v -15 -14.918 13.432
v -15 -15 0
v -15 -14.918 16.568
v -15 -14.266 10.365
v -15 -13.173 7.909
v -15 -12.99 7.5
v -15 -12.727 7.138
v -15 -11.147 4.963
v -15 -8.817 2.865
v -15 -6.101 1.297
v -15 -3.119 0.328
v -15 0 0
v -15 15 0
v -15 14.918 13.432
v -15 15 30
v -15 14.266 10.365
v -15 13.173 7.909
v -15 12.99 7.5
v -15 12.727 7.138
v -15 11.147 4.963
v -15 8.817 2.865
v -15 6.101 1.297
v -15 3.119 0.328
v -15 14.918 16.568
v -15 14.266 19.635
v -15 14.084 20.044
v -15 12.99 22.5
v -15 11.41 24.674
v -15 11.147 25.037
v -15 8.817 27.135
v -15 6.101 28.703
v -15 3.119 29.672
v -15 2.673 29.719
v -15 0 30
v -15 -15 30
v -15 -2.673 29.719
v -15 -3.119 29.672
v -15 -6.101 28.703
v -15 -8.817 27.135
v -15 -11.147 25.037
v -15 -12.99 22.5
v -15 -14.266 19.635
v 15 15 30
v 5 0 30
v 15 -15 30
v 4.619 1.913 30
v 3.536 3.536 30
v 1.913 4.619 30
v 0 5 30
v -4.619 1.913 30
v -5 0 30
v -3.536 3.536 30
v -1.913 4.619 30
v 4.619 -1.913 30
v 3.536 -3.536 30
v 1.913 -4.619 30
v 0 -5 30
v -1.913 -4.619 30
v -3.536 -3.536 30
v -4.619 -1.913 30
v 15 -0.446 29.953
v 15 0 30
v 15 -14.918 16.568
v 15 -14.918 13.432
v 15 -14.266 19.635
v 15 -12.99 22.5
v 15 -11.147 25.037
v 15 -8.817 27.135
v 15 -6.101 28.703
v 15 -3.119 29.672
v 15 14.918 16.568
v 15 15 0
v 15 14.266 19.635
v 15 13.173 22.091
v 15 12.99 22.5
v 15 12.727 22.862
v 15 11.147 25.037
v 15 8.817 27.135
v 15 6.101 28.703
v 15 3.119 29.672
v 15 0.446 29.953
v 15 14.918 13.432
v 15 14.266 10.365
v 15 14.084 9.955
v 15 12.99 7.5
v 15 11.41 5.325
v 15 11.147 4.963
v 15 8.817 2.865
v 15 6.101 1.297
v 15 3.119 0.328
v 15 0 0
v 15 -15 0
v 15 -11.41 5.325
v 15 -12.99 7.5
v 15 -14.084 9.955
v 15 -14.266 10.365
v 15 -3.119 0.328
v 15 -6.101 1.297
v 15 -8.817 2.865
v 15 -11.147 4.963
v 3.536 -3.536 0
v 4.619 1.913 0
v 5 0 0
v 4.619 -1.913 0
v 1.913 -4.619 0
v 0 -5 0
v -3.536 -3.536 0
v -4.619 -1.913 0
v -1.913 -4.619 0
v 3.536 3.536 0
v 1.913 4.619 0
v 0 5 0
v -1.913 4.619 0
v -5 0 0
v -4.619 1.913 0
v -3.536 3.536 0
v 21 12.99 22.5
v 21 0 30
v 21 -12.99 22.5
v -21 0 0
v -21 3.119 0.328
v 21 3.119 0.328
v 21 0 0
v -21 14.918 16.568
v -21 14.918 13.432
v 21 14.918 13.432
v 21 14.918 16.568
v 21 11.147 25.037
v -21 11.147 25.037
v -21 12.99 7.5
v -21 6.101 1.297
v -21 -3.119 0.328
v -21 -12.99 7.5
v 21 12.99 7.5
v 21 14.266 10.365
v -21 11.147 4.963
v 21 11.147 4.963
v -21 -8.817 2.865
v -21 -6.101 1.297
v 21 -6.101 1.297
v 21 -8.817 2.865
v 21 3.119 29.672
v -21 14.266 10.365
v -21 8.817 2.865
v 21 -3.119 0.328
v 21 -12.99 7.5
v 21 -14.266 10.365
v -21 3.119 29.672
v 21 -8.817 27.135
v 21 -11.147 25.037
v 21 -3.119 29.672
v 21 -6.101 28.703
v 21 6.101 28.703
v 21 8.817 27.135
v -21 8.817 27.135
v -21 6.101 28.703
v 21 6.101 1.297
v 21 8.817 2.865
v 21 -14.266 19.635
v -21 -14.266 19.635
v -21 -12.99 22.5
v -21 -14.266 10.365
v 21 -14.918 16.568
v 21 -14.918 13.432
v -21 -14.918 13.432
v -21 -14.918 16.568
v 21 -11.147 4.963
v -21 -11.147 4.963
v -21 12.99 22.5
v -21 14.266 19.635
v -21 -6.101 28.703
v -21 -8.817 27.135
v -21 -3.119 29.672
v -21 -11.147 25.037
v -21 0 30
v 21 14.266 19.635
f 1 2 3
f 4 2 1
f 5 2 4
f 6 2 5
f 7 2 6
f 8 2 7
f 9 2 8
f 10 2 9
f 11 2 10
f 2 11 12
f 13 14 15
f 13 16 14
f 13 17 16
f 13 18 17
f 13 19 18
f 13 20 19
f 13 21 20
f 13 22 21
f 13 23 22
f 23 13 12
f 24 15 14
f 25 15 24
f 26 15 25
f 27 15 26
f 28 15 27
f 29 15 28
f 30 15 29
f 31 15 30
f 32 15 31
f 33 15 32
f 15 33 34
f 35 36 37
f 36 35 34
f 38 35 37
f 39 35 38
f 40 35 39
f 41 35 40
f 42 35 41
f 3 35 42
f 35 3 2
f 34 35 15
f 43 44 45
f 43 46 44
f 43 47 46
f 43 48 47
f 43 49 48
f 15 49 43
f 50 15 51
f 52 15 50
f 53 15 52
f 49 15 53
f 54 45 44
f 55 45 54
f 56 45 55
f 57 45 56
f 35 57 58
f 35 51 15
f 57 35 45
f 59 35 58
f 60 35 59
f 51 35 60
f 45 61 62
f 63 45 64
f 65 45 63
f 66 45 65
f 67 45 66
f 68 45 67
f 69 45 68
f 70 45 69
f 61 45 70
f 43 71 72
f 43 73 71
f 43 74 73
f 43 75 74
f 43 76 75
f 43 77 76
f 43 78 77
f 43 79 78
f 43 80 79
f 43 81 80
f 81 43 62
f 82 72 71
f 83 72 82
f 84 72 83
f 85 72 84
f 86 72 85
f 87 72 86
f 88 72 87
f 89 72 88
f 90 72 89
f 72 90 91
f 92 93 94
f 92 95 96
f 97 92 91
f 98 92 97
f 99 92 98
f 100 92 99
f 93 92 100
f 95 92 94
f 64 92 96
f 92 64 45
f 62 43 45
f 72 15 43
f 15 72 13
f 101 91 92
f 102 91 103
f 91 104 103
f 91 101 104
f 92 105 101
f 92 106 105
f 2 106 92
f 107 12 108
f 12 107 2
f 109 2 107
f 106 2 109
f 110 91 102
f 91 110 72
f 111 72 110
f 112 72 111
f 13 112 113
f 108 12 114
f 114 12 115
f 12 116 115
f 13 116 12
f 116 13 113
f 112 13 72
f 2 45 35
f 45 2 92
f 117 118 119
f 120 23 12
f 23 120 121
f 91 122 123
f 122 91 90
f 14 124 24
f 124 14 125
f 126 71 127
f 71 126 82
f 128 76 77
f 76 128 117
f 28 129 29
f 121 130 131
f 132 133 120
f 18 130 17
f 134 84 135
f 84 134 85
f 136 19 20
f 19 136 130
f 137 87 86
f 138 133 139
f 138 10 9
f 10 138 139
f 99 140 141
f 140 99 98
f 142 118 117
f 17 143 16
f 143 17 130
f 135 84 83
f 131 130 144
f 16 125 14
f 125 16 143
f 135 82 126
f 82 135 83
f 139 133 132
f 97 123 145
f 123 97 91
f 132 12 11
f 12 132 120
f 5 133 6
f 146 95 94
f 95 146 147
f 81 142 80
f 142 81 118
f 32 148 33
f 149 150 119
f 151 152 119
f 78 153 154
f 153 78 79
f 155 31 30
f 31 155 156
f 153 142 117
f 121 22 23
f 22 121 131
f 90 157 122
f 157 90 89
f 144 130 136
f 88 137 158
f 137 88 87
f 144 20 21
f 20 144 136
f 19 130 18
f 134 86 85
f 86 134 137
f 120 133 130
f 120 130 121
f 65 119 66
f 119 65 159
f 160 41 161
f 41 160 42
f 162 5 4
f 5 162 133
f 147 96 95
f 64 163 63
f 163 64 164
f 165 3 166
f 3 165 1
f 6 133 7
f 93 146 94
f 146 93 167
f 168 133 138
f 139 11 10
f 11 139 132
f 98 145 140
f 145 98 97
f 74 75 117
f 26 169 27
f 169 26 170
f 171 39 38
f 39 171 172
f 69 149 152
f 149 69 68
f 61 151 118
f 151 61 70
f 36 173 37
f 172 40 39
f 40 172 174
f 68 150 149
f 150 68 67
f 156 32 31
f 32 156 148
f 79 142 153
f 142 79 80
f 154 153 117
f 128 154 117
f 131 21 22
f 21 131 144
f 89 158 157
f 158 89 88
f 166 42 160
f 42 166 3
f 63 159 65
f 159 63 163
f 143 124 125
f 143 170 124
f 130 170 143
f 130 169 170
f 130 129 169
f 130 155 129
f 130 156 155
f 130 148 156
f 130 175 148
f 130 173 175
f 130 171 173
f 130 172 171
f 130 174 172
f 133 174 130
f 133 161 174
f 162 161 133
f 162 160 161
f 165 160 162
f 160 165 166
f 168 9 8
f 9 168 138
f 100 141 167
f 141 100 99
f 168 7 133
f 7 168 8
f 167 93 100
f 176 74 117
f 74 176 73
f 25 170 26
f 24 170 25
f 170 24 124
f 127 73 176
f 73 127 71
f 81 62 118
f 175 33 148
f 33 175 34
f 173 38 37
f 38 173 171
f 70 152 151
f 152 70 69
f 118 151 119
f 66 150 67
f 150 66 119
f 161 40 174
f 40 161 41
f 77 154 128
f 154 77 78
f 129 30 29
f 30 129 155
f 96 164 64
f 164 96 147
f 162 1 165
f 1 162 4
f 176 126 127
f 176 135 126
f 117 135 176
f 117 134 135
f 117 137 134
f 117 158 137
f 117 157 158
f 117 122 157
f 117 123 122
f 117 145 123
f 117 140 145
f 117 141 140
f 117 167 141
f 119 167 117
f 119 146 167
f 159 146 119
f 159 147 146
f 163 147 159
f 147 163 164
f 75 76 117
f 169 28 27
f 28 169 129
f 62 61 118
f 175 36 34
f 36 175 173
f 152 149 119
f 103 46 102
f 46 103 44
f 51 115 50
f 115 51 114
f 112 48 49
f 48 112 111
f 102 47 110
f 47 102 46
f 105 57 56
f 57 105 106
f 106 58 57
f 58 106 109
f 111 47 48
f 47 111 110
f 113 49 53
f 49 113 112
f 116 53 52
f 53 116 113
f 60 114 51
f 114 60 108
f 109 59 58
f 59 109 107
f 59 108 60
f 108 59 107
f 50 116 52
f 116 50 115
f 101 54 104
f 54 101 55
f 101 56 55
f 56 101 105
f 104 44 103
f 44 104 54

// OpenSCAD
cube_size = 30; // [10:Small,20:Medium,30:Large]

hole_diameter = 10; 
hole_radius = hole_diameter/2;

// How deep should the center hole be?
hole_depth = 50; // [0,1,5,50]

show_wheels = "yes"; // [yes,no]

// How thick should the side wheels be?
wheel_thickness = 6; // [1:40]

// ignore this variable!
// foo=1;

// don't turn functions into params!
function BEZ03(u) = pow((1-u), 3);

// ignore variable values
bing = 3+4;
baz = 3 / hole_depth;

difference() {
  union() {
    translate([0, 0, cube_size/2]) cube([cube_size,cube_size,cube_size], center=true);
    if (show_wheels == "yes") {
      translate([0, 0, cube_size/2]) rotate([0, 90, 0]) {
        cylinder(r=cube_size/2, h=cube_size+(wheel_thickness*2), center=true);
      }
    }
  }
  translate([0, 0, cube_size-hole_depth]) cylinder(r=hole_radius, h=hole_depth);
}
        
